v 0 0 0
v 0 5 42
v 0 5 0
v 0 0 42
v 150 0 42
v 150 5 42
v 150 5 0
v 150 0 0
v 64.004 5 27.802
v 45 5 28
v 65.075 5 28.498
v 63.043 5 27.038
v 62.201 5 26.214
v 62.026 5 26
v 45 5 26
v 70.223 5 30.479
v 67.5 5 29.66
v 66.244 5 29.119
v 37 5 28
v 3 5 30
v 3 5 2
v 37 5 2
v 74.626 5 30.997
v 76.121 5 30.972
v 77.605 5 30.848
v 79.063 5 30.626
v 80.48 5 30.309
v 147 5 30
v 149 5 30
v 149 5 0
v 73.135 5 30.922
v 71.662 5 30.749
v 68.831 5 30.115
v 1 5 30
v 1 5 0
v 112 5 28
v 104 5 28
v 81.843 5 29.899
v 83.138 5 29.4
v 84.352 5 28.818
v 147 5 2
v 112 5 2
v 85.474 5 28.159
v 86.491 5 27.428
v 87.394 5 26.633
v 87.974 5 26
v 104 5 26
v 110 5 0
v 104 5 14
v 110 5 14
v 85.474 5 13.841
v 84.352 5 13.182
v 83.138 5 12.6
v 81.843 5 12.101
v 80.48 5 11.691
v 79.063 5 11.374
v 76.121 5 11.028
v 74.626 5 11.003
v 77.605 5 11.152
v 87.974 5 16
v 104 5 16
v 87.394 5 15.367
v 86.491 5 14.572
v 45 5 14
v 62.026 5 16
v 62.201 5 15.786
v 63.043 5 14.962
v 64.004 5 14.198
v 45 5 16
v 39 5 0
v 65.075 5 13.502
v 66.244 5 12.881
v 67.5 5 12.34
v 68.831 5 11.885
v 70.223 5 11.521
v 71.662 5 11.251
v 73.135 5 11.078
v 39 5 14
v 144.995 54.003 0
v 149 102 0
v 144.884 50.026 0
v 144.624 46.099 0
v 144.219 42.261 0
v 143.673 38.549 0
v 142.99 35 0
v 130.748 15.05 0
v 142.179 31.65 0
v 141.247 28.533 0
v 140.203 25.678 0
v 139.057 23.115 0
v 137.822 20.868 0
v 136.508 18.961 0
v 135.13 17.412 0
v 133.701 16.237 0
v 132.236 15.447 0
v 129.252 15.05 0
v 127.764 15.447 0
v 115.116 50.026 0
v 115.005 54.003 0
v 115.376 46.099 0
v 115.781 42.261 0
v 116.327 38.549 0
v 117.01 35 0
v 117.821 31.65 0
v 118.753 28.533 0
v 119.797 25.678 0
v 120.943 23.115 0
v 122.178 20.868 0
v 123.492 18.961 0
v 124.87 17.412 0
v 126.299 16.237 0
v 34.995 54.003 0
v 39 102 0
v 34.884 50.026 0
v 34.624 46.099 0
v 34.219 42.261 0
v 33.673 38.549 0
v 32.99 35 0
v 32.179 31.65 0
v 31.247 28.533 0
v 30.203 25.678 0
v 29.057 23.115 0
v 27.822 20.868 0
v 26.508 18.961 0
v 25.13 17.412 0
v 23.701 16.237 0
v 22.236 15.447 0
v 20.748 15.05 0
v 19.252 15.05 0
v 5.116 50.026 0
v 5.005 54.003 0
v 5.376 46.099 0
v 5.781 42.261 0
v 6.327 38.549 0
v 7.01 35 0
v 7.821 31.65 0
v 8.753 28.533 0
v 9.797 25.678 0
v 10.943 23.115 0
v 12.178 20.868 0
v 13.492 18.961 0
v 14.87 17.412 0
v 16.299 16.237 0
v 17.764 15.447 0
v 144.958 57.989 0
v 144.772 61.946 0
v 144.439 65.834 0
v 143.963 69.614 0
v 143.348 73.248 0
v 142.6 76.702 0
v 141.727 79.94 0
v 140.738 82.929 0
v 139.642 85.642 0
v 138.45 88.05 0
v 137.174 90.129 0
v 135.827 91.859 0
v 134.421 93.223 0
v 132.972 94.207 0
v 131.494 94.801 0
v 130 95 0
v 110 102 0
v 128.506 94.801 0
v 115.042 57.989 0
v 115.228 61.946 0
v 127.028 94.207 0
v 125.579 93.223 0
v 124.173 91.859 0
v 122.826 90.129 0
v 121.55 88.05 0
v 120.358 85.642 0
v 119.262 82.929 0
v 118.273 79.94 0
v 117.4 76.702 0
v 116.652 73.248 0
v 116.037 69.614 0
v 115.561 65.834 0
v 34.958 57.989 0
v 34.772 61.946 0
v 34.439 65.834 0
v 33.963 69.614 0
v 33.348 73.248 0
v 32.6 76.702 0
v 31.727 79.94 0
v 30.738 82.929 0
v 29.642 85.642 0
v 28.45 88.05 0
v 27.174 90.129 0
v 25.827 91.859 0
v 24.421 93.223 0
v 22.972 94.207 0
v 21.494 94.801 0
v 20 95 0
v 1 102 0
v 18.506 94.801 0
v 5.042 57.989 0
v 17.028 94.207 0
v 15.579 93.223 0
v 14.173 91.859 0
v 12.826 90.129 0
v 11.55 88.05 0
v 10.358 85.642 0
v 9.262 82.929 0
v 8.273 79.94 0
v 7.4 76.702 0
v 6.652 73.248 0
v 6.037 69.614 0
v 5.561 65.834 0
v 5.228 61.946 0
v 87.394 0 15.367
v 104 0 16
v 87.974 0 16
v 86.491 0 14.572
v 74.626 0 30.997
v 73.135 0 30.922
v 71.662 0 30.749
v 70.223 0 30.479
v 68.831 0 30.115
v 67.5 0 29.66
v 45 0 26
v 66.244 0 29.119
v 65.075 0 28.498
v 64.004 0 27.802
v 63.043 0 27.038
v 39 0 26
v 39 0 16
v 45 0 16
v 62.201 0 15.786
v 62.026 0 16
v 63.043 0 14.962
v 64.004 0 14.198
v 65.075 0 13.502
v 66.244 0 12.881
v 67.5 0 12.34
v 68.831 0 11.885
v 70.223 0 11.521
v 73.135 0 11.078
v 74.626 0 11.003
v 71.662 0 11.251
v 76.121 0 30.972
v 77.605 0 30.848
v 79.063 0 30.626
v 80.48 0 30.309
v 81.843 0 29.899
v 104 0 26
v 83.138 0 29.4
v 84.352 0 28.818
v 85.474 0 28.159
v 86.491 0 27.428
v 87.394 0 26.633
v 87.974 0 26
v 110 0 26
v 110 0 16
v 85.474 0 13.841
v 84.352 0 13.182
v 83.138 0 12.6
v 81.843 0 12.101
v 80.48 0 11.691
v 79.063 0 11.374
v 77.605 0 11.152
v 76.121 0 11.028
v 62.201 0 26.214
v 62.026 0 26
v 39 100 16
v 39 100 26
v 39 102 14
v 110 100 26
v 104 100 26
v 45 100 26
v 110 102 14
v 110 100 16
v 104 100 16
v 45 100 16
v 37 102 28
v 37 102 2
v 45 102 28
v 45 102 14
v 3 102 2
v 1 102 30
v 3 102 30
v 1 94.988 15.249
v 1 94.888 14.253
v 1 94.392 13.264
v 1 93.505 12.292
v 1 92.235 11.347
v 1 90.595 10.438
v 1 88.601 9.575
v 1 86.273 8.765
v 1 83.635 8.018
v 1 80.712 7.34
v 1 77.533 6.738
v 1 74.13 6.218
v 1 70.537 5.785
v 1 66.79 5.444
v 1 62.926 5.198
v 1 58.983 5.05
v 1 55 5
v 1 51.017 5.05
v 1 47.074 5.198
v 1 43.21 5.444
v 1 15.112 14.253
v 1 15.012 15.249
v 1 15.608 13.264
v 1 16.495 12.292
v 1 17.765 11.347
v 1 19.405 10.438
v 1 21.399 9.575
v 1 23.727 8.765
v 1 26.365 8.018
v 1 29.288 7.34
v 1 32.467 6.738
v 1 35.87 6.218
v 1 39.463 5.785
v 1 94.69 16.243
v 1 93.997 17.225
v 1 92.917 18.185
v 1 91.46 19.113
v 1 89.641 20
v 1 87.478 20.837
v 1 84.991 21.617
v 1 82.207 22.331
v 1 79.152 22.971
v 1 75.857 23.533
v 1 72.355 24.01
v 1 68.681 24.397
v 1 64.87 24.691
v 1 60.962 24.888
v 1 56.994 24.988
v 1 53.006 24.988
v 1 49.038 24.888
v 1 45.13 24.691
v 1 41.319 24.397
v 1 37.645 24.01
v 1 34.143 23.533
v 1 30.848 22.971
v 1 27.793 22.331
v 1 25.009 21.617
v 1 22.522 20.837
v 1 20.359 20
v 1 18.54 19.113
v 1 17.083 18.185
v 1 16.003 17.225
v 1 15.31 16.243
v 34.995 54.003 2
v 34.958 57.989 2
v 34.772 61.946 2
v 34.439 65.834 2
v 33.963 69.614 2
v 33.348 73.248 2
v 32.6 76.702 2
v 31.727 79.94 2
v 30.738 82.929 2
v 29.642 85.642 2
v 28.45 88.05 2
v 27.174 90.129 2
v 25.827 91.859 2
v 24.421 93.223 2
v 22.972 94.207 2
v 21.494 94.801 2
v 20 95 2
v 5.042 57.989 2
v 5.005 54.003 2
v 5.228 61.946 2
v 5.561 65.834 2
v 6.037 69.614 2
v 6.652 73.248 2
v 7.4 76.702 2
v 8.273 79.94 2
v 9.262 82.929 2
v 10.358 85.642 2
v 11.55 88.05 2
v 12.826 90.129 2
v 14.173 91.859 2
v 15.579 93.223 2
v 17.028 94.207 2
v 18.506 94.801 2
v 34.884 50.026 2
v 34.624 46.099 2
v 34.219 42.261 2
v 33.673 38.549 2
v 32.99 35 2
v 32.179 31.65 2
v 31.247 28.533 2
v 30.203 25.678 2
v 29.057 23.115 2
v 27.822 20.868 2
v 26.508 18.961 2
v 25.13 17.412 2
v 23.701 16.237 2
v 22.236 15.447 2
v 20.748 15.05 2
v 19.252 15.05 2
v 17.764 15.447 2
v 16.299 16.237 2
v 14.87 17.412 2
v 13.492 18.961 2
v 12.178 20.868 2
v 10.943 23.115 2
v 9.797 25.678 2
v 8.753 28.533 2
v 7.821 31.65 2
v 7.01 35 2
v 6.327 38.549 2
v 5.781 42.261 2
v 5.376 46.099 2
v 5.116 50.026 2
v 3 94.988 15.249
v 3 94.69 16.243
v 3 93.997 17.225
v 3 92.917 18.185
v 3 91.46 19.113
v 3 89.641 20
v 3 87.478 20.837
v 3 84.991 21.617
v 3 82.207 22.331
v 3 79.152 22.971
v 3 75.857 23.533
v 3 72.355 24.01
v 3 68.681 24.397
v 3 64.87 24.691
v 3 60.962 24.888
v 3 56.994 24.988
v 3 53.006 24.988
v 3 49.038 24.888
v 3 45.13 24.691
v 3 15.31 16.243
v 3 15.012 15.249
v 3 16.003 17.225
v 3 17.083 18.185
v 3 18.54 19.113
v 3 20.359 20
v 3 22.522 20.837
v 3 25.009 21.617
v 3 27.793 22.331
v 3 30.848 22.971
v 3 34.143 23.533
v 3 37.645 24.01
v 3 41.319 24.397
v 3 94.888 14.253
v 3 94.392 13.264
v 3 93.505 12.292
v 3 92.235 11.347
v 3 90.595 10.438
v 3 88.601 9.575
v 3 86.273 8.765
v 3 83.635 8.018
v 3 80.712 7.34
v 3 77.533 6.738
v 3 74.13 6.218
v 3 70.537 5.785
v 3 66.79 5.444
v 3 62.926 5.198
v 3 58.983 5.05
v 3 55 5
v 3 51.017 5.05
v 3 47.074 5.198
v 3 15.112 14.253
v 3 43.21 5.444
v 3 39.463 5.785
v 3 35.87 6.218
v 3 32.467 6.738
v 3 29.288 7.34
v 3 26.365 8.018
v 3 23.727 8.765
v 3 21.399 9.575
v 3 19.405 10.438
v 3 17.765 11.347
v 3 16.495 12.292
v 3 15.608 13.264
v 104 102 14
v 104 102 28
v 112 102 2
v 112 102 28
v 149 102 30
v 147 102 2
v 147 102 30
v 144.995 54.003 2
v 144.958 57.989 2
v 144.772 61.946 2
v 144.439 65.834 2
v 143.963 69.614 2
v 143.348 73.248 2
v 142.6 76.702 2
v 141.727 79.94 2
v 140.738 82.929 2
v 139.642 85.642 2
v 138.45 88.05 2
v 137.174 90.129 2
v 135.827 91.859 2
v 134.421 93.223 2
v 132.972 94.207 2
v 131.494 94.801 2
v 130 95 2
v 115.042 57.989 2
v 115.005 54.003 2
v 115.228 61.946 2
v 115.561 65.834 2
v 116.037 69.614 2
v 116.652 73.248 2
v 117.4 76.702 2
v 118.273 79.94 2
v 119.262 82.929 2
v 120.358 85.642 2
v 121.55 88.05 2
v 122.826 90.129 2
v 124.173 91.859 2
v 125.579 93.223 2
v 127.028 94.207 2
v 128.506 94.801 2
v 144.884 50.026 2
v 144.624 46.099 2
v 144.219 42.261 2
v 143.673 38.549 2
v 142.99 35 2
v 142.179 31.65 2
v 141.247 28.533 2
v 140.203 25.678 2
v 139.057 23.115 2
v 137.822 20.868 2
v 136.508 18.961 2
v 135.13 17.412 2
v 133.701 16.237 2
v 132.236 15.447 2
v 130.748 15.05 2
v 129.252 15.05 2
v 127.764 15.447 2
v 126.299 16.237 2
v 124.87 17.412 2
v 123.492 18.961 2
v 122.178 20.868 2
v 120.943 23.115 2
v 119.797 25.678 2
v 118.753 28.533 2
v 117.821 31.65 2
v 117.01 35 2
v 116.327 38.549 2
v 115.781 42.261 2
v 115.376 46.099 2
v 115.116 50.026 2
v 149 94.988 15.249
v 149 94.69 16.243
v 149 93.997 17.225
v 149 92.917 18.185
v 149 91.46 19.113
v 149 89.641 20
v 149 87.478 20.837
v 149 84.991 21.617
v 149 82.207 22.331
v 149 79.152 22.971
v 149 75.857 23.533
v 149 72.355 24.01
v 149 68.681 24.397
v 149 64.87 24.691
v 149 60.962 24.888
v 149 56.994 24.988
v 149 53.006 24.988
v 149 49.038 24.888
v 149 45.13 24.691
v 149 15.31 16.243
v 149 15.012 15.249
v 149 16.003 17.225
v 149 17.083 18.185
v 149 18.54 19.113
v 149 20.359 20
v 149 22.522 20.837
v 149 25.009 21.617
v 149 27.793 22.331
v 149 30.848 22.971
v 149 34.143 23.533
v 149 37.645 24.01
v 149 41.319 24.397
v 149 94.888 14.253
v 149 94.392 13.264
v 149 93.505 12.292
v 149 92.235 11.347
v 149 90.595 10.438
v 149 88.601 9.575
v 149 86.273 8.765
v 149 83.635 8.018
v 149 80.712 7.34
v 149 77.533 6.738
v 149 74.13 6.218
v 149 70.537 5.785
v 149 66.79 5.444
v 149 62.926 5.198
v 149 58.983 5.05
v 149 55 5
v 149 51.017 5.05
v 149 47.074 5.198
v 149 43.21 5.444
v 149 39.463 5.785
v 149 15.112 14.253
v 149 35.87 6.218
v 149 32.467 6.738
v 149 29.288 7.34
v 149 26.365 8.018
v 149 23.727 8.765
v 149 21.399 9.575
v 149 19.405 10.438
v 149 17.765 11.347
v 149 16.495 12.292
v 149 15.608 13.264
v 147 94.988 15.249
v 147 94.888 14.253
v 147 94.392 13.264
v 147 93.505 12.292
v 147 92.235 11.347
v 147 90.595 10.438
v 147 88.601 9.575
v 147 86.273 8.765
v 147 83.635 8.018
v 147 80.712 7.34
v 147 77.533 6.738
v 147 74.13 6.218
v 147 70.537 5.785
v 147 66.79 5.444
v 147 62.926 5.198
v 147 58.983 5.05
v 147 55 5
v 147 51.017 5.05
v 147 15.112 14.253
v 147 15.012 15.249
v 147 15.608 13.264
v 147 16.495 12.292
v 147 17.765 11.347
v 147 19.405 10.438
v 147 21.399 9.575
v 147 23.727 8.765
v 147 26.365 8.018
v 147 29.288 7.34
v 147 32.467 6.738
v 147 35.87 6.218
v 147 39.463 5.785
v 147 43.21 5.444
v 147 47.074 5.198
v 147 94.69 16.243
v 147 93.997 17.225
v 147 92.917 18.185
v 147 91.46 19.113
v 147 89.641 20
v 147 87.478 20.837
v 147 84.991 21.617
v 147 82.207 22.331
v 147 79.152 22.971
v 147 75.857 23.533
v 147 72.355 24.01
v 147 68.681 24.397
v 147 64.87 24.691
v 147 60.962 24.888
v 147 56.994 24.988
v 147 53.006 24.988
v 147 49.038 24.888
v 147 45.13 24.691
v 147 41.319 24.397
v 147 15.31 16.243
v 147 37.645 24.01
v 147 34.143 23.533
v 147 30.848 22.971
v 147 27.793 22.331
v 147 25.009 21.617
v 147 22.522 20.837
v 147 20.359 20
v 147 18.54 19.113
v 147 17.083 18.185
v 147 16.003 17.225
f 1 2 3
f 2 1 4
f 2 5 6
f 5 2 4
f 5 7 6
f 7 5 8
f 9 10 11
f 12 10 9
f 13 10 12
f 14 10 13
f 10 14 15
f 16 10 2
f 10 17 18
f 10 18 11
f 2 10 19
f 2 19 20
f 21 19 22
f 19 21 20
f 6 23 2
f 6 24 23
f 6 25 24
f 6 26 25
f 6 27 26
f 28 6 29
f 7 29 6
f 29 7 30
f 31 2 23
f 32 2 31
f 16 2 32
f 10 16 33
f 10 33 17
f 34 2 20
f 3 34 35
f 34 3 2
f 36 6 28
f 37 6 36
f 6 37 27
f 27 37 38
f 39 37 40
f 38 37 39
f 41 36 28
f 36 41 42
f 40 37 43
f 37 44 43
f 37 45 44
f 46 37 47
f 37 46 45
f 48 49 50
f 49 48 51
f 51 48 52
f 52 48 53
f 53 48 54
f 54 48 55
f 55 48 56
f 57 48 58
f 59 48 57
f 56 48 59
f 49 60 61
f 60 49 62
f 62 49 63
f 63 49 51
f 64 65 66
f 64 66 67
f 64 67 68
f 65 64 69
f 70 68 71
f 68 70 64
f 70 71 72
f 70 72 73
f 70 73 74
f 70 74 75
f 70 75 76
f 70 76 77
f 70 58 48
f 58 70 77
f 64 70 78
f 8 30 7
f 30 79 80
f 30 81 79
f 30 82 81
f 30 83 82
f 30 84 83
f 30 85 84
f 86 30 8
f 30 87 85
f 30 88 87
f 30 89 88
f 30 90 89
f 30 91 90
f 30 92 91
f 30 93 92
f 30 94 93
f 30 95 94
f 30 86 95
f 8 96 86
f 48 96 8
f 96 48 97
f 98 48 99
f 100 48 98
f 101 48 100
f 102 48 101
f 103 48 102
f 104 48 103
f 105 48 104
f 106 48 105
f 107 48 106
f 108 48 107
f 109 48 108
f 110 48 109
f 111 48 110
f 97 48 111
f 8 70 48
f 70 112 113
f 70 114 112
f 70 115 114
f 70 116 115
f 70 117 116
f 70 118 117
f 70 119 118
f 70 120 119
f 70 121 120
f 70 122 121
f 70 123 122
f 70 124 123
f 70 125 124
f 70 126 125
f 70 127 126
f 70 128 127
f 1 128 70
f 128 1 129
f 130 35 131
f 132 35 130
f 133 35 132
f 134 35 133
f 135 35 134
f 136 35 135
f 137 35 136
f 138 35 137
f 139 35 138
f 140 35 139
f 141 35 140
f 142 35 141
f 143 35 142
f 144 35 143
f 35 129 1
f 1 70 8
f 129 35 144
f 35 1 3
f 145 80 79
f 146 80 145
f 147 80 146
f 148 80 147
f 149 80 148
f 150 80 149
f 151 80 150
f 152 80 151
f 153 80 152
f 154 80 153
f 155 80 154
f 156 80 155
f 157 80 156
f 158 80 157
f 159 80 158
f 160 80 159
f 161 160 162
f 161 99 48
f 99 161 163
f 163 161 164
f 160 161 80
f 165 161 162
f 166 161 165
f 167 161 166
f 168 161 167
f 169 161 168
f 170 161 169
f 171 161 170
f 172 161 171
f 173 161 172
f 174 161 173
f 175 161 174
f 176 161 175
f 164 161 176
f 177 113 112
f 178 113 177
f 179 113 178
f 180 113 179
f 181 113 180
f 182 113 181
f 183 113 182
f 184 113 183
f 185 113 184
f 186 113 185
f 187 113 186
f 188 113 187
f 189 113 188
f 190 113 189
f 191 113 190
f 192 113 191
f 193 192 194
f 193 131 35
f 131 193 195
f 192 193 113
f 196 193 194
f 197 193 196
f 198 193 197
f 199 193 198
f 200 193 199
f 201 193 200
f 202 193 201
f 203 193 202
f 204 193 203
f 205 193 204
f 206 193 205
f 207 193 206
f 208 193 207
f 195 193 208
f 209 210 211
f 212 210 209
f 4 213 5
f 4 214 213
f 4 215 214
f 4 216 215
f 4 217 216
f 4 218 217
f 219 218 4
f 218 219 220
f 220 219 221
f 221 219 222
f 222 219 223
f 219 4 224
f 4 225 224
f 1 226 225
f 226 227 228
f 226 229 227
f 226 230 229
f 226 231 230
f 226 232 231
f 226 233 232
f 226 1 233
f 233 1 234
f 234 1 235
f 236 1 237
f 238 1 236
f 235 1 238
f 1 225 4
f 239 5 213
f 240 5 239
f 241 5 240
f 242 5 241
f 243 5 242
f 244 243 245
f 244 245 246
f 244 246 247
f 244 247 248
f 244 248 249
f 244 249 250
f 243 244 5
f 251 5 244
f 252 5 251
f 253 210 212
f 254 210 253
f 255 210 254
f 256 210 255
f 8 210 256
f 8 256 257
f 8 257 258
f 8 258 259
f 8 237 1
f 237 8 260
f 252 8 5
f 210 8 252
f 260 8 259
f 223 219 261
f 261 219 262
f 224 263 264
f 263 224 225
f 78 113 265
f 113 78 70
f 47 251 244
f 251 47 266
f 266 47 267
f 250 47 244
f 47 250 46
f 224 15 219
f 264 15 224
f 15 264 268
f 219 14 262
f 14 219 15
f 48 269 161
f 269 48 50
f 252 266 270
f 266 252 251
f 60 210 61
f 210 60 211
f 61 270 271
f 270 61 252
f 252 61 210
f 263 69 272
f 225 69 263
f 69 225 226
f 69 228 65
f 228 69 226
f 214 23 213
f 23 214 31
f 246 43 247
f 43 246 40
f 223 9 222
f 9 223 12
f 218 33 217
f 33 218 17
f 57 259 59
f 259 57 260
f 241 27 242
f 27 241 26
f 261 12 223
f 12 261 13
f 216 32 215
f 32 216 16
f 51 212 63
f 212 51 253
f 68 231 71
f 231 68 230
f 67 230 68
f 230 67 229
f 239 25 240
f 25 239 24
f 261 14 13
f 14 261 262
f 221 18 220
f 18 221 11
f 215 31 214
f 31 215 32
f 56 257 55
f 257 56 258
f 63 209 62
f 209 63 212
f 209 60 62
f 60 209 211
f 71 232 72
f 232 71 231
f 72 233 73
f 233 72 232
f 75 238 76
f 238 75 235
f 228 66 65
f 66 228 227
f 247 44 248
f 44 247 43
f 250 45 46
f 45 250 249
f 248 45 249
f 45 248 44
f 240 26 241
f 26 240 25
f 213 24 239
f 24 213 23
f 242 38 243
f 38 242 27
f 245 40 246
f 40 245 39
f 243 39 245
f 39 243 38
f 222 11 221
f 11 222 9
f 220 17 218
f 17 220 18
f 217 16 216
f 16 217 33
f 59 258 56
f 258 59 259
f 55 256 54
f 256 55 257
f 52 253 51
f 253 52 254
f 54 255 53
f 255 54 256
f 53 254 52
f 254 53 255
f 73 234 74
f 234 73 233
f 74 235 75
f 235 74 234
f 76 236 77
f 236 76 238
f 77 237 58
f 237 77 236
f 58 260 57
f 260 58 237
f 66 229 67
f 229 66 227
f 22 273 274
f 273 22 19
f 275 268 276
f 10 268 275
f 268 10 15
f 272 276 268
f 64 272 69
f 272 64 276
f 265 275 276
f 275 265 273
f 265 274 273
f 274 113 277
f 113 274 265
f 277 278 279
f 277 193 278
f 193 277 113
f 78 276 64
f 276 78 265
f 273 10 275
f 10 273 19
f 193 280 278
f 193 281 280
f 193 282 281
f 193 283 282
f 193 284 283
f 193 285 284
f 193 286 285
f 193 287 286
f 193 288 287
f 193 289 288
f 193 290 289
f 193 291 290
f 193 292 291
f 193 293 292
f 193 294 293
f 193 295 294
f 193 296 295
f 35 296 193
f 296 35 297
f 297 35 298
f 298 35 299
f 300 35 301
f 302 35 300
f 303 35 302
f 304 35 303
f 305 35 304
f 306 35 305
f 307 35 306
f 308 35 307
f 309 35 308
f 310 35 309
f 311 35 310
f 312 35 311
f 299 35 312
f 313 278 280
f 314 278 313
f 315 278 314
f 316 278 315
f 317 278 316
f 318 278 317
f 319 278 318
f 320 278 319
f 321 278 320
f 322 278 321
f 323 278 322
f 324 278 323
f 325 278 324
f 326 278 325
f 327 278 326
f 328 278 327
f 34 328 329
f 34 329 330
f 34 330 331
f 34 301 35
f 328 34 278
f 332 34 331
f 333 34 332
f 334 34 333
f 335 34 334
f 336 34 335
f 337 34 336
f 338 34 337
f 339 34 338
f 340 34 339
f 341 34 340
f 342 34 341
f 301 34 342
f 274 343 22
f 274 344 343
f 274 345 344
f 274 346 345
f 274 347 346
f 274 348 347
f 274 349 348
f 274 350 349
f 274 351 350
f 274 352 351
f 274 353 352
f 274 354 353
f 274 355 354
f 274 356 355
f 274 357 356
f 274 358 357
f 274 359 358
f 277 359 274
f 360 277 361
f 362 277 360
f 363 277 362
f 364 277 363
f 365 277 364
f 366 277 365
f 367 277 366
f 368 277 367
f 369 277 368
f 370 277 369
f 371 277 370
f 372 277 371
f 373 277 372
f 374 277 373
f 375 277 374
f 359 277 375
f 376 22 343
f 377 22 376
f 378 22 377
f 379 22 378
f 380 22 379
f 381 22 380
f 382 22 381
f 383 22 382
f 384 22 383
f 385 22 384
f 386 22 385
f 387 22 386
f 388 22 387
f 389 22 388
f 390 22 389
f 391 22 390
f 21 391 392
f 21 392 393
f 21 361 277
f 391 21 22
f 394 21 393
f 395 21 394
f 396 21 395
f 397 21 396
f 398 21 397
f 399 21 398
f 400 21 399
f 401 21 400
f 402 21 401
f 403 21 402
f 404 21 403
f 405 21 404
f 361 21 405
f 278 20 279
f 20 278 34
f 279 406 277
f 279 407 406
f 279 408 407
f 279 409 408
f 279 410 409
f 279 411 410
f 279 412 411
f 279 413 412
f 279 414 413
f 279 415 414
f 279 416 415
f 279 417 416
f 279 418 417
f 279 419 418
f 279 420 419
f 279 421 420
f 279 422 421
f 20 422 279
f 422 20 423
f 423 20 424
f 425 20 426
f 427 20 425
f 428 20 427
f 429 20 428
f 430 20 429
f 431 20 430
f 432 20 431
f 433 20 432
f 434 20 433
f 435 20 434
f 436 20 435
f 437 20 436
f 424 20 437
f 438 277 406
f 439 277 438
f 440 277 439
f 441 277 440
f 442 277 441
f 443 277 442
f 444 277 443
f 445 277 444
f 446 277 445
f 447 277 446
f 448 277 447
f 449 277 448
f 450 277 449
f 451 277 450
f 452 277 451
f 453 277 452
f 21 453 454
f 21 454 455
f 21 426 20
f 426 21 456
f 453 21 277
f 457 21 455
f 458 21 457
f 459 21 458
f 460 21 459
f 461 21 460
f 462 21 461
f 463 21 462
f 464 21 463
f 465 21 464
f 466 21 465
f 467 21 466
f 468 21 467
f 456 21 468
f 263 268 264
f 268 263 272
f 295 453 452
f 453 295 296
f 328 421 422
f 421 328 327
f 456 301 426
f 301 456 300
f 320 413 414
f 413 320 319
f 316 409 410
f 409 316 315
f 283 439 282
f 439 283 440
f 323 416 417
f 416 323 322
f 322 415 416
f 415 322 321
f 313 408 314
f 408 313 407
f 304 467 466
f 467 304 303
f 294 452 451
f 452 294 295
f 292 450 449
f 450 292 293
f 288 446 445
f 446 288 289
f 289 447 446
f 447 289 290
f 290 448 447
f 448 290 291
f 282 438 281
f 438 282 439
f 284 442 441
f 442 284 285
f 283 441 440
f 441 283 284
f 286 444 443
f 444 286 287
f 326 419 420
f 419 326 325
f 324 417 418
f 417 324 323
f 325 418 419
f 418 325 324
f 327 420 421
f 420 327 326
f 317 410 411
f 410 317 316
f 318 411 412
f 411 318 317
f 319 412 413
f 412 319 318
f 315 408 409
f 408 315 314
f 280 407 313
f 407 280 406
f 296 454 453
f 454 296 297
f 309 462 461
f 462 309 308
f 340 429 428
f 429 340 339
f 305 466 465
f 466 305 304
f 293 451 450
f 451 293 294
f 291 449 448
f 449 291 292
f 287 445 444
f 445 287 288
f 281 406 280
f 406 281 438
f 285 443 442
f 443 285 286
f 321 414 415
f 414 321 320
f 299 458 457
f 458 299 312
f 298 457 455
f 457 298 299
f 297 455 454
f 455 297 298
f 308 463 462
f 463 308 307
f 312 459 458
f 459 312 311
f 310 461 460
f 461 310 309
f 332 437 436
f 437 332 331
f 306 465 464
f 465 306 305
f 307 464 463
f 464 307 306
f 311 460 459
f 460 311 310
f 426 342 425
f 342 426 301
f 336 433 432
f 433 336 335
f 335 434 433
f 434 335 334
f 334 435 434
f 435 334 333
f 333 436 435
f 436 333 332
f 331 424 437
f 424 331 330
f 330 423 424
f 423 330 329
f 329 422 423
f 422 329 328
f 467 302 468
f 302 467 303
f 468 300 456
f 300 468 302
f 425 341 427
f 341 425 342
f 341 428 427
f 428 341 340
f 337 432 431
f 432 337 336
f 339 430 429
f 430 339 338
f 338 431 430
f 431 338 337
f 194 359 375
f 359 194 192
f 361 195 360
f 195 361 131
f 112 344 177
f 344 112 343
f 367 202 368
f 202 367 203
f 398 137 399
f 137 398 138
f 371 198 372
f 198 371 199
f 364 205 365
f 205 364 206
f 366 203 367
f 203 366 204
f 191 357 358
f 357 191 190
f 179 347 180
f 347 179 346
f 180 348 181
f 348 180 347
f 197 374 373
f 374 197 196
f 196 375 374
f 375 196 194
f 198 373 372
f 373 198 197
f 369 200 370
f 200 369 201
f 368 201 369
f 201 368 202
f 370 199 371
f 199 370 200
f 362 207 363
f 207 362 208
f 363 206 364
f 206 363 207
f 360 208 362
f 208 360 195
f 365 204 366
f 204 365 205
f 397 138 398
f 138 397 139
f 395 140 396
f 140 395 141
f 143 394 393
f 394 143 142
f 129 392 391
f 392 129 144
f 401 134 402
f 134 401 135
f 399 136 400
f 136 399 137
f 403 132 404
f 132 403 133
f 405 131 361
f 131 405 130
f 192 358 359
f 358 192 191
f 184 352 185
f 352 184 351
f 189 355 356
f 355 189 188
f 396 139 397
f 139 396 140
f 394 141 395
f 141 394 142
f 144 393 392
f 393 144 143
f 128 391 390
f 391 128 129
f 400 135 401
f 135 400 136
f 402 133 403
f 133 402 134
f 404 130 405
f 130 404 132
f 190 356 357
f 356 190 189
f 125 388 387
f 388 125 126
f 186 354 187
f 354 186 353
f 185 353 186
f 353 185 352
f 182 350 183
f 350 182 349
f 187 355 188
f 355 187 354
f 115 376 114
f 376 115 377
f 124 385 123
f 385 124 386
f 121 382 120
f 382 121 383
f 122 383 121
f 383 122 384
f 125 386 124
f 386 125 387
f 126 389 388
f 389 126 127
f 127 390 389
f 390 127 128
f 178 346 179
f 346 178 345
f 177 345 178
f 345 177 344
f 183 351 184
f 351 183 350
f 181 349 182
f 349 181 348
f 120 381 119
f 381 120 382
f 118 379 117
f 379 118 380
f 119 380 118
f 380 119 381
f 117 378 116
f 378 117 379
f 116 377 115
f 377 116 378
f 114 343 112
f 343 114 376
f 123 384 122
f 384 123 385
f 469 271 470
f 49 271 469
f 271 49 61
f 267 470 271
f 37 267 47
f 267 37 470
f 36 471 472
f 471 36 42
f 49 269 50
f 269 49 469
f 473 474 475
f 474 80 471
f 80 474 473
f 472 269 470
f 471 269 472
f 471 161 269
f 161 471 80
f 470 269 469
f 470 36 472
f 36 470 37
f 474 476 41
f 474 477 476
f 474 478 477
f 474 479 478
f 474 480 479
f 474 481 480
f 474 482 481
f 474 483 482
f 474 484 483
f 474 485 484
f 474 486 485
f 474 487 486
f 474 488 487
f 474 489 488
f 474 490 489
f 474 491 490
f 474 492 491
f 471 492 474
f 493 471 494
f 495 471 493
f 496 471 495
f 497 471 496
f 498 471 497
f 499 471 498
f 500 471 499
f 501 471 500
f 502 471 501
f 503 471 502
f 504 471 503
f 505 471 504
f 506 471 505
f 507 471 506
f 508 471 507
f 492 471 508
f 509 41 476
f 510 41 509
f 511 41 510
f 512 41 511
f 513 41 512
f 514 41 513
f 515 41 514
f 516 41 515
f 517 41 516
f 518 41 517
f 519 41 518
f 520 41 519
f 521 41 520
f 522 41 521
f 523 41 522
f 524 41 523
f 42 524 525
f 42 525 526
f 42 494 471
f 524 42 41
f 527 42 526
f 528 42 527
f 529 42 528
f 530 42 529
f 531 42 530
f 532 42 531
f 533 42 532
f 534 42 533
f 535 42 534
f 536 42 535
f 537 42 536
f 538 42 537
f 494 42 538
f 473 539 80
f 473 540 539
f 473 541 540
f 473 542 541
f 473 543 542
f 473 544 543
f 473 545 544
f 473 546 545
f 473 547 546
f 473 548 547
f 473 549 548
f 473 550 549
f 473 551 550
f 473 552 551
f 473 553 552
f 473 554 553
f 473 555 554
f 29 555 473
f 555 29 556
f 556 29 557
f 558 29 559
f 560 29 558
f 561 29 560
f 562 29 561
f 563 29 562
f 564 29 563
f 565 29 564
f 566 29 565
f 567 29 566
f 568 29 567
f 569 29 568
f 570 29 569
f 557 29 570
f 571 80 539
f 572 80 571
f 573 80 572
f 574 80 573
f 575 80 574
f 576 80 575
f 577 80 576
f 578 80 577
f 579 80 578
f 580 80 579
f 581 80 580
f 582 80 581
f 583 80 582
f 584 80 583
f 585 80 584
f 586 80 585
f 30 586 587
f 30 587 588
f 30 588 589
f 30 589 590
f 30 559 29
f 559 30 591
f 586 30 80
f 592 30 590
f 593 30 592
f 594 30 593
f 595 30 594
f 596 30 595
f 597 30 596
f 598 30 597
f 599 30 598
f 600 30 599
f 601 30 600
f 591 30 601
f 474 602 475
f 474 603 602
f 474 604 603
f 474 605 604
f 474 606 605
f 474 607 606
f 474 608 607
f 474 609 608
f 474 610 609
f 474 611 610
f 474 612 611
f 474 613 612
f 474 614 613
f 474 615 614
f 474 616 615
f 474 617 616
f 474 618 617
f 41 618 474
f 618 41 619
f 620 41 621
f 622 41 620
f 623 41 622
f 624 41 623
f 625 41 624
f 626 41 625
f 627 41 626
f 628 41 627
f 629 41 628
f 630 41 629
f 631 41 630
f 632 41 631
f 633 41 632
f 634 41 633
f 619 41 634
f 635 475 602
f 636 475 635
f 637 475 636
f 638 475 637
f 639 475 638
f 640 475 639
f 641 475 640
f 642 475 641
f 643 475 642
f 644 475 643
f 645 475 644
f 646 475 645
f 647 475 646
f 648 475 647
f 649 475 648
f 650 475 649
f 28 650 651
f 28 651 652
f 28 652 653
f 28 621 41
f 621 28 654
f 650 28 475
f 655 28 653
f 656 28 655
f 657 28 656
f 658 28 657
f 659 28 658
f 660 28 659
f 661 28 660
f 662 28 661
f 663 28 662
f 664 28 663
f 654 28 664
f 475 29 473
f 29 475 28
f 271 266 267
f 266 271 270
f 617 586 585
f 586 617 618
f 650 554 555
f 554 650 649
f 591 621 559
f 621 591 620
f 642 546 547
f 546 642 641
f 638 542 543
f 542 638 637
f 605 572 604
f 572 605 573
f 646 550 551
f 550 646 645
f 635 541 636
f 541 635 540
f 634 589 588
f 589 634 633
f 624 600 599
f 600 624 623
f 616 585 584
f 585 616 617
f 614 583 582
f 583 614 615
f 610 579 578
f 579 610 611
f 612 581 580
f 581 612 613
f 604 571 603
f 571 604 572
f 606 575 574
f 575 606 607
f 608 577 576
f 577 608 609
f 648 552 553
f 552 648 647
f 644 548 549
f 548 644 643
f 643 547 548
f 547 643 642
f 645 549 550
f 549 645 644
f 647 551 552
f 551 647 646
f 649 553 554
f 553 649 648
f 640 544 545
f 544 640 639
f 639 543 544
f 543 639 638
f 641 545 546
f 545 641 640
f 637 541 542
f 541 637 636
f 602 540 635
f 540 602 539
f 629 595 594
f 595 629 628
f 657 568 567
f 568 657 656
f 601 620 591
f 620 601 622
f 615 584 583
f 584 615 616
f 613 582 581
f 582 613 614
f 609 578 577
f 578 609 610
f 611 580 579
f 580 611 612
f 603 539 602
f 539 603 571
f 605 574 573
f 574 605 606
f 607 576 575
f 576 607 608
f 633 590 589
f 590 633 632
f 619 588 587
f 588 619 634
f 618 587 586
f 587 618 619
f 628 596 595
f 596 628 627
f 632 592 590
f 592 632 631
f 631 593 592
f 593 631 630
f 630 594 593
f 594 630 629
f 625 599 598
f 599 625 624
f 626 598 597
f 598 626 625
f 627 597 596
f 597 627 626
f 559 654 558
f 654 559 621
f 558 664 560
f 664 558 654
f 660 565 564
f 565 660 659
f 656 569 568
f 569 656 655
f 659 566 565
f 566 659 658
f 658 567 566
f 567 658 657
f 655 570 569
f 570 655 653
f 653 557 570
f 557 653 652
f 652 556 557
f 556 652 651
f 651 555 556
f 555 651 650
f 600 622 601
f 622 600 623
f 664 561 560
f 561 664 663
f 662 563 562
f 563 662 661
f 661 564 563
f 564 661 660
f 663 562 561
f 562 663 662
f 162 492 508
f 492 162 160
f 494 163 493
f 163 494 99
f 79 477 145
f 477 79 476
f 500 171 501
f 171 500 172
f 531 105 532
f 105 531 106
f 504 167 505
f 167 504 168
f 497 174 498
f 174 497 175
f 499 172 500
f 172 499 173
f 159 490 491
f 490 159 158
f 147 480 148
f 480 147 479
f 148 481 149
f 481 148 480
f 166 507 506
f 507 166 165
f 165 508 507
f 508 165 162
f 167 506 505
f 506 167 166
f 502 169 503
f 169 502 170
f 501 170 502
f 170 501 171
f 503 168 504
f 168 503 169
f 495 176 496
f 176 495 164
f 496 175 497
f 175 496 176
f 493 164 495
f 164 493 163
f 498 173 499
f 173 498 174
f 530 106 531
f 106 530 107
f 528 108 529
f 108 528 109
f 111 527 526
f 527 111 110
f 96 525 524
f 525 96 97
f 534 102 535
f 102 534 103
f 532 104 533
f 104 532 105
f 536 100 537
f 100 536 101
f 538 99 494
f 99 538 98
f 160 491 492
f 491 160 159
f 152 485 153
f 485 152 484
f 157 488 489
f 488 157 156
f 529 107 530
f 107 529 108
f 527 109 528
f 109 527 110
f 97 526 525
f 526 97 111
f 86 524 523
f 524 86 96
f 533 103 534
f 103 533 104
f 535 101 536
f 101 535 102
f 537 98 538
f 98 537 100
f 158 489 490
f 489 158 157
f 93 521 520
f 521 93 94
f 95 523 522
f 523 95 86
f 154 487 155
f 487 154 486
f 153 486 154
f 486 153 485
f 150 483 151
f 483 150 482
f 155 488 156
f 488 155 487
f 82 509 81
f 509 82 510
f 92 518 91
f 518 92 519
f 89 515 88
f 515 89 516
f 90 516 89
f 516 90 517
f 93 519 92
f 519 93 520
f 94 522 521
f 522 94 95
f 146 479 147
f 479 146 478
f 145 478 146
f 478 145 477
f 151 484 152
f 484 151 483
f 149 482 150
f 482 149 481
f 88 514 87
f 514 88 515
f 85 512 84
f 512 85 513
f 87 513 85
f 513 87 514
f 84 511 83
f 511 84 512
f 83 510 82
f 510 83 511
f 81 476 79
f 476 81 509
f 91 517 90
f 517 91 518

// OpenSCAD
$fa = 2;
$fs = 1;

//hdd
//color([1,0,0,.5])translate([24,0,8])cube([102,146,26]);
//color([1,0,0,.5])translate([40,0,16])cube([70,100,10]);

// front panel   
difference(){
   cube([150, 5, 42]);
   
   translate([39, -2, 16])
      cube([71, 10, 10]);

translate([75, 7, 21])
   scale([1.5, 1, 1])
      rotate([90, 0, 0])
         cylinder(10, 10, 10);
}

// left
difference(){
   union(){
      translate([37, 0, 14])
         cube([8, 102, 2]);
      translate([37, 0, 0])
         cube([2, 102, 28]);
      translate([37, 0, 26])
         cube([8, 102, 2]);
      translate([1, 0, 0])   
         cube([36, 102, 2]);
      translate([1, 0, 0])
         cube([2, 102, 30]);
      translate([37, 100, 14])   
         cube([8, 2, 12]);
   }
   
   translate([-2, 55, 15])
      scale([1, 4, 1])
         rotate([0, 90, 0])
            cylinder(6, 10, 10);      
   translate([20, 55, -2])
      scale([1.5, 4, 1])
         rotate([0, 0, 90])
            cylinder(6, 10, 10);      
}

//right
difference(){
   union(){
      translate([104, 0, 14])
         cube([8, 102, 2]);
      translate([110, 0, 0])
         cube([2, 102, 28]);
      translate([104, 0, 26])
         cube([8, 102, 2]);
      translate([112, 0, 0])   
         cube([37, 102, 2]);
      translate([147, 0, 0])
         cube([2, 102, 30]);
      translate([104, 100, 14])   
         cube([8, 2, 12]);
   }
   translate([146, 55, 15])
      scale([1, 4, 1])
         rotate([0, 90, 0])
            cylinder(6, 10, 10);      
   translate([130, 55, -2])
      scale([1.5, 4, 1])
         rotate([0, 0, 90])
            cylinder(6, 10, 10);      
}
     
/*
translate([-2, 53.5,10])
rotate([0, 90, 0])
cylinder(6, 2, 2);

translate([-2, 132.5,10])
rotate([0, 90, 0])
cylinder(6, 2, 2);
*/
